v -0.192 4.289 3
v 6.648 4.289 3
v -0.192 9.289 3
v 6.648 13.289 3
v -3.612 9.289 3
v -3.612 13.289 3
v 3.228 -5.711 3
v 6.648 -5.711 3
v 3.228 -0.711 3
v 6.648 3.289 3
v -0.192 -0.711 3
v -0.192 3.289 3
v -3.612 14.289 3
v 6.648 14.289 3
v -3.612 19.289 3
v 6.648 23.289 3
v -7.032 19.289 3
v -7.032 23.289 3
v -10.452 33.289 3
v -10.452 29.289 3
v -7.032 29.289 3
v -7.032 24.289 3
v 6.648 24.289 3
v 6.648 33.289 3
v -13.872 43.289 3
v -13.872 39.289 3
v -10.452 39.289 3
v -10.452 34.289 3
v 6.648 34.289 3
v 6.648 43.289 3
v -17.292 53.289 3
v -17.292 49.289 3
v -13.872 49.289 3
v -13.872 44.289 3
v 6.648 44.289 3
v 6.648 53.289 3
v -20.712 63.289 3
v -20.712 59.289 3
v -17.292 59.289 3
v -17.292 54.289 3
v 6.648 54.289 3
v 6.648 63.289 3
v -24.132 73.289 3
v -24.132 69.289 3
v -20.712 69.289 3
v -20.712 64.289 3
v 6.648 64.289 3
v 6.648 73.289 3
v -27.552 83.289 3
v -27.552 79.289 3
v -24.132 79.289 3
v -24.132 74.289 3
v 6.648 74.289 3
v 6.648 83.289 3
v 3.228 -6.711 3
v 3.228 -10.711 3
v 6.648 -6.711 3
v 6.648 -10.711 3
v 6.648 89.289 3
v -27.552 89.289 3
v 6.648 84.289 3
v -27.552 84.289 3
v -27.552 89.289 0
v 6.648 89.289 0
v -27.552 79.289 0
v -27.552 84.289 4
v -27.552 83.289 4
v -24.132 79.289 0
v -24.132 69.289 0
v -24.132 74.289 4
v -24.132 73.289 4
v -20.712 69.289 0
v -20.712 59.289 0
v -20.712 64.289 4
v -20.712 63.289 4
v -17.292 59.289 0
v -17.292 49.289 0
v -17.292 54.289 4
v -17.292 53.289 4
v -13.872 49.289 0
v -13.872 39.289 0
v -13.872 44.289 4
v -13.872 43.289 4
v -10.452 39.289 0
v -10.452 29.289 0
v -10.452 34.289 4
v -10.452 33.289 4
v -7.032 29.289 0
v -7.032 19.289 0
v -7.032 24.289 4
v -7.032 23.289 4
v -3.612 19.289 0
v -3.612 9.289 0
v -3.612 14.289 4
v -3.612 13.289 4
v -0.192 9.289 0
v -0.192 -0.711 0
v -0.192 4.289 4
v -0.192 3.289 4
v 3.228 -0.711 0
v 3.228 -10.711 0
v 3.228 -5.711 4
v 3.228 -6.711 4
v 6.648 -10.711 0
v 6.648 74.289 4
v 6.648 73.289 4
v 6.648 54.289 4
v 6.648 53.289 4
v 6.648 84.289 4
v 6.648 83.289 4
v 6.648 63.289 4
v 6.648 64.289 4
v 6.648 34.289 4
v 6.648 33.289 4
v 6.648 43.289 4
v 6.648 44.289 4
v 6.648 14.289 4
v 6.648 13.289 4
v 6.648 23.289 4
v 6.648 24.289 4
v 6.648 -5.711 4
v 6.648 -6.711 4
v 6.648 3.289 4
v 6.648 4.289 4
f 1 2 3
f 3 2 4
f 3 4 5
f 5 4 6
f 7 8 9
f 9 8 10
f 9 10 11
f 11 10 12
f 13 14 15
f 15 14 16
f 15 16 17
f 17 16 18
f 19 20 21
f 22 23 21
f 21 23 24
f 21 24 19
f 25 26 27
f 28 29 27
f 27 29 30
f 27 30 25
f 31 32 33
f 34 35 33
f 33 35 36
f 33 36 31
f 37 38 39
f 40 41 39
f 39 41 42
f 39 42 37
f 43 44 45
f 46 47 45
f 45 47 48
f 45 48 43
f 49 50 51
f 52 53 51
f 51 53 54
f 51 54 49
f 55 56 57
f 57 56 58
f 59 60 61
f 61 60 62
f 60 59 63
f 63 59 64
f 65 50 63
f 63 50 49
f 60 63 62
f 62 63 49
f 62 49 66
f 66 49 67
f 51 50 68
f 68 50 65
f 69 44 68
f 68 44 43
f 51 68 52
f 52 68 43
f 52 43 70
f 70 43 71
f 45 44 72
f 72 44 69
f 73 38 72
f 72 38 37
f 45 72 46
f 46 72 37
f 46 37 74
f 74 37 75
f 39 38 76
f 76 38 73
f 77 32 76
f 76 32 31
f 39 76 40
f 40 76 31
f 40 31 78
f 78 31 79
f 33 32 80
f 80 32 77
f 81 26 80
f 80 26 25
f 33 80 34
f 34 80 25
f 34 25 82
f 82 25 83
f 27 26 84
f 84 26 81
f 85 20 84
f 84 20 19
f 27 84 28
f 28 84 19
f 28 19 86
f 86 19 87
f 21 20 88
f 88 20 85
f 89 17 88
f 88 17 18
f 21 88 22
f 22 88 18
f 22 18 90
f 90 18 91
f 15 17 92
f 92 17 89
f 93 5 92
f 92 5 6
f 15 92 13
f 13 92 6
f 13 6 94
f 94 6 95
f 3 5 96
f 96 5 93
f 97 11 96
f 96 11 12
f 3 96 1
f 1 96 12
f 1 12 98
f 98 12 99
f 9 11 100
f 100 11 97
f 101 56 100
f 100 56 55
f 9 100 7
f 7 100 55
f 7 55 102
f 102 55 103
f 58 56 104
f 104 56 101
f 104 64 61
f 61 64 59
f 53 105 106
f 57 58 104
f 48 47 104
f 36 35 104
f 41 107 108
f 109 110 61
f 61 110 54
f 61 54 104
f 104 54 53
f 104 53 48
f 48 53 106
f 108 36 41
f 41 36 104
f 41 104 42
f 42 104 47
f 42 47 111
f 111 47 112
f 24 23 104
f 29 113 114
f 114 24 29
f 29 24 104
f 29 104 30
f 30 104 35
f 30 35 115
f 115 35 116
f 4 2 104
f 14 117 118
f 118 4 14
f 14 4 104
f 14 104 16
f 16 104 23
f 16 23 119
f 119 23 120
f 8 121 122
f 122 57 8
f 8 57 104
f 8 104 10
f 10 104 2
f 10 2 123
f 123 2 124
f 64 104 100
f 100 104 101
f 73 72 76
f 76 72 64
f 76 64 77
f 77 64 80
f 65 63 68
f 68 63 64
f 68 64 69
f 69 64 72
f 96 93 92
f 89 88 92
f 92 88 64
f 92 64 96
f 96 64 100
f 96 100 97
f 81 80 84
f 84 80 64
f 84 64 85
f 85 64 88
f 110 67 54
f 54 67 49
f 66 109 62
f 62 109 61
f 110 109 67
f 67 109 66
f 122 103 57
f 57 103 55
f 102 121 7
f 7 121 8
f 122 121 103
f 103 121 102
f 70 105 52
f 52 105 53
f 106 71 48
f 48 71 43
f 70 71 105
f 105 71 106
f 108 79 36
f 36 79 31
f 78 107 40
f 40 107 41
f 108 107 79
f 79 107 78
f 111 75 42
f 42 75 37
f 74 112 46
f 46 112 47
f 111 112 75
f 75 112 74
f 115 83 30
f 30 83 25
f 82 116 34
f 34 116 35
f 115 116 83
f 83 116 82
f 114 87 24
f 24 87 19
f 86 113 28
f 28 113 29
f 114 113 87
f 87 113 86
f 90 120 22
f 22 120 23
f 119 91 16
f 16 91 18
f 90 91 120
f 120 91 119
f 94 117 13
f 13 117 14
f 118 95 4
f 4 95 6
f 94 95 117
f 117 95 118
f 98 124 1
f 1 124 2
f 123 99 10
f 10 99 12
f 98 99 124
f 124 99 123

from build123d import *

# Parameters (mm, degrees)
BOSS_EXTRUDE2_DEPTH = 3
SKETCH2_W           = 34.2
SKETCH2_H           = 1
SKETCH2_W_2         = 30.78
SKETCH2_W_3         = 27.36
SKETCH2_W_4         = 23.94
SKETCH2_W_5         = 20.52
SKETCH2_W_6         = 17.1
SKETCH2_W_7         = 13.68
SKETCH2_W_8         = 10.26
SKETCH2_W_9         = 6.84
SKETCH2_W_10        = 3.42
BOSS_EXTRUDE3_DEPTH = 1


with BuildPart() as part:
    # Sketch1 → Boss-Extrude2 (new body)
    with BuildSketch(Plane.XY):
        Polygon((-27.552134831, 89.289101124), (-24.132134831, 89.289101124), (-20.712134831, 89.289101124), (-17.292134831, 89.289101124), (-13.872134831, 89.289101124), (-10.452134831, 89.289101124), (-7.032134831, 89.289101124), (-3.612134831, 89.289101124), (-0.192134831, 89.289101124), (3.227865169, 89.289101124), (6.647865169, 89.289101124), (6.647865169, 79.289101124), (6.647865169, 69.289101124), (6.647865169, 59.289101124), (6.647865169, 49.289101124), (6.647865169, 39.289101124), (6.647865169, 29.289101124), (6.647865169, 19.289101124), (6.647865169, 9.289101124), (6.647865169, -0.710898876), (6.647865169, -10.710898876), (3.227865169, -10.710898876), (3.227865169, -0.710898876), (-0.192134831, -0.710898876), (-0.192134831, 9.289101124), (-3.612134831, 9.289101124), (-3.612134831, 19.289101124), (-7.032134831, 19.289101124), (-7.032134831, 29.289101124), (-10.452134831, 29.289101124), (-10.452134831, 39.289101124), (-13.872134831, 39.289101124), (-13.872134831, 49.289101124), (-17.292134831, 49.289101124), (-17.292134831, 59.289101124), (-20.712134831, 59.289101124), (-20.712134831, 69.289101124), (-24.132134831, 69.289101124), (-24.132134831, 79.289101124), (-27.552134831, 79.289101124), align=None)
    extrude(amount=BOSS_EXTRUDE2_DEPTH)

    # Sketch2 → Boss-Extrude3 (add)
    with BuildSketch(Plane.XY.offset(3)):
        with Locations((-10.452134831, 83.789101124)):
            Rectangle(SKETCH2_W, SKETCH2_H)
        with Locations((-8.742134831, 73.789101124)):
            Rectangle(SKETCH2_W_2, SKETCH2_H)
        with Locations((-7.032134831, 63.789101124)):
            Rectangle(SKETCH2_W_3, SKETCH2_H)
        with Locations((-5.322134831, 53.789101124)):
            Rectangle(SKETCH2_W_4, SKETCH2_H)
        with Locations((-3.612134831, 43.789101124)):
            Rectangle(SKETCH2_W_5, SKETCH2_H)
        with Locations((-1.902134831, 33.789101124)):
            Rectangle(SKETCH2_W_6, SKETCH2_H)
        with Locations((-0.192134831, 23.789101124)):
            Rectangle(SKETCH2_W_7, SKETCH2_H)
        with Locations((1.517865169, 13.789101124)):
            Rectangle(SKETCH2_W_8, SKETCH2_H)
        with Locations((3.227865169, 3.789101124)):
            Rectangle(SKETCH2_W_9, SKETCH2_H)
        with Locations((4.937865169, -6.210898876)):
            Rectangle(SKETCH2_W_10, SKETCH2_H)
    extrude(amount=BOSS_EXTRUDE3_DEPTH)


solid = part.part
